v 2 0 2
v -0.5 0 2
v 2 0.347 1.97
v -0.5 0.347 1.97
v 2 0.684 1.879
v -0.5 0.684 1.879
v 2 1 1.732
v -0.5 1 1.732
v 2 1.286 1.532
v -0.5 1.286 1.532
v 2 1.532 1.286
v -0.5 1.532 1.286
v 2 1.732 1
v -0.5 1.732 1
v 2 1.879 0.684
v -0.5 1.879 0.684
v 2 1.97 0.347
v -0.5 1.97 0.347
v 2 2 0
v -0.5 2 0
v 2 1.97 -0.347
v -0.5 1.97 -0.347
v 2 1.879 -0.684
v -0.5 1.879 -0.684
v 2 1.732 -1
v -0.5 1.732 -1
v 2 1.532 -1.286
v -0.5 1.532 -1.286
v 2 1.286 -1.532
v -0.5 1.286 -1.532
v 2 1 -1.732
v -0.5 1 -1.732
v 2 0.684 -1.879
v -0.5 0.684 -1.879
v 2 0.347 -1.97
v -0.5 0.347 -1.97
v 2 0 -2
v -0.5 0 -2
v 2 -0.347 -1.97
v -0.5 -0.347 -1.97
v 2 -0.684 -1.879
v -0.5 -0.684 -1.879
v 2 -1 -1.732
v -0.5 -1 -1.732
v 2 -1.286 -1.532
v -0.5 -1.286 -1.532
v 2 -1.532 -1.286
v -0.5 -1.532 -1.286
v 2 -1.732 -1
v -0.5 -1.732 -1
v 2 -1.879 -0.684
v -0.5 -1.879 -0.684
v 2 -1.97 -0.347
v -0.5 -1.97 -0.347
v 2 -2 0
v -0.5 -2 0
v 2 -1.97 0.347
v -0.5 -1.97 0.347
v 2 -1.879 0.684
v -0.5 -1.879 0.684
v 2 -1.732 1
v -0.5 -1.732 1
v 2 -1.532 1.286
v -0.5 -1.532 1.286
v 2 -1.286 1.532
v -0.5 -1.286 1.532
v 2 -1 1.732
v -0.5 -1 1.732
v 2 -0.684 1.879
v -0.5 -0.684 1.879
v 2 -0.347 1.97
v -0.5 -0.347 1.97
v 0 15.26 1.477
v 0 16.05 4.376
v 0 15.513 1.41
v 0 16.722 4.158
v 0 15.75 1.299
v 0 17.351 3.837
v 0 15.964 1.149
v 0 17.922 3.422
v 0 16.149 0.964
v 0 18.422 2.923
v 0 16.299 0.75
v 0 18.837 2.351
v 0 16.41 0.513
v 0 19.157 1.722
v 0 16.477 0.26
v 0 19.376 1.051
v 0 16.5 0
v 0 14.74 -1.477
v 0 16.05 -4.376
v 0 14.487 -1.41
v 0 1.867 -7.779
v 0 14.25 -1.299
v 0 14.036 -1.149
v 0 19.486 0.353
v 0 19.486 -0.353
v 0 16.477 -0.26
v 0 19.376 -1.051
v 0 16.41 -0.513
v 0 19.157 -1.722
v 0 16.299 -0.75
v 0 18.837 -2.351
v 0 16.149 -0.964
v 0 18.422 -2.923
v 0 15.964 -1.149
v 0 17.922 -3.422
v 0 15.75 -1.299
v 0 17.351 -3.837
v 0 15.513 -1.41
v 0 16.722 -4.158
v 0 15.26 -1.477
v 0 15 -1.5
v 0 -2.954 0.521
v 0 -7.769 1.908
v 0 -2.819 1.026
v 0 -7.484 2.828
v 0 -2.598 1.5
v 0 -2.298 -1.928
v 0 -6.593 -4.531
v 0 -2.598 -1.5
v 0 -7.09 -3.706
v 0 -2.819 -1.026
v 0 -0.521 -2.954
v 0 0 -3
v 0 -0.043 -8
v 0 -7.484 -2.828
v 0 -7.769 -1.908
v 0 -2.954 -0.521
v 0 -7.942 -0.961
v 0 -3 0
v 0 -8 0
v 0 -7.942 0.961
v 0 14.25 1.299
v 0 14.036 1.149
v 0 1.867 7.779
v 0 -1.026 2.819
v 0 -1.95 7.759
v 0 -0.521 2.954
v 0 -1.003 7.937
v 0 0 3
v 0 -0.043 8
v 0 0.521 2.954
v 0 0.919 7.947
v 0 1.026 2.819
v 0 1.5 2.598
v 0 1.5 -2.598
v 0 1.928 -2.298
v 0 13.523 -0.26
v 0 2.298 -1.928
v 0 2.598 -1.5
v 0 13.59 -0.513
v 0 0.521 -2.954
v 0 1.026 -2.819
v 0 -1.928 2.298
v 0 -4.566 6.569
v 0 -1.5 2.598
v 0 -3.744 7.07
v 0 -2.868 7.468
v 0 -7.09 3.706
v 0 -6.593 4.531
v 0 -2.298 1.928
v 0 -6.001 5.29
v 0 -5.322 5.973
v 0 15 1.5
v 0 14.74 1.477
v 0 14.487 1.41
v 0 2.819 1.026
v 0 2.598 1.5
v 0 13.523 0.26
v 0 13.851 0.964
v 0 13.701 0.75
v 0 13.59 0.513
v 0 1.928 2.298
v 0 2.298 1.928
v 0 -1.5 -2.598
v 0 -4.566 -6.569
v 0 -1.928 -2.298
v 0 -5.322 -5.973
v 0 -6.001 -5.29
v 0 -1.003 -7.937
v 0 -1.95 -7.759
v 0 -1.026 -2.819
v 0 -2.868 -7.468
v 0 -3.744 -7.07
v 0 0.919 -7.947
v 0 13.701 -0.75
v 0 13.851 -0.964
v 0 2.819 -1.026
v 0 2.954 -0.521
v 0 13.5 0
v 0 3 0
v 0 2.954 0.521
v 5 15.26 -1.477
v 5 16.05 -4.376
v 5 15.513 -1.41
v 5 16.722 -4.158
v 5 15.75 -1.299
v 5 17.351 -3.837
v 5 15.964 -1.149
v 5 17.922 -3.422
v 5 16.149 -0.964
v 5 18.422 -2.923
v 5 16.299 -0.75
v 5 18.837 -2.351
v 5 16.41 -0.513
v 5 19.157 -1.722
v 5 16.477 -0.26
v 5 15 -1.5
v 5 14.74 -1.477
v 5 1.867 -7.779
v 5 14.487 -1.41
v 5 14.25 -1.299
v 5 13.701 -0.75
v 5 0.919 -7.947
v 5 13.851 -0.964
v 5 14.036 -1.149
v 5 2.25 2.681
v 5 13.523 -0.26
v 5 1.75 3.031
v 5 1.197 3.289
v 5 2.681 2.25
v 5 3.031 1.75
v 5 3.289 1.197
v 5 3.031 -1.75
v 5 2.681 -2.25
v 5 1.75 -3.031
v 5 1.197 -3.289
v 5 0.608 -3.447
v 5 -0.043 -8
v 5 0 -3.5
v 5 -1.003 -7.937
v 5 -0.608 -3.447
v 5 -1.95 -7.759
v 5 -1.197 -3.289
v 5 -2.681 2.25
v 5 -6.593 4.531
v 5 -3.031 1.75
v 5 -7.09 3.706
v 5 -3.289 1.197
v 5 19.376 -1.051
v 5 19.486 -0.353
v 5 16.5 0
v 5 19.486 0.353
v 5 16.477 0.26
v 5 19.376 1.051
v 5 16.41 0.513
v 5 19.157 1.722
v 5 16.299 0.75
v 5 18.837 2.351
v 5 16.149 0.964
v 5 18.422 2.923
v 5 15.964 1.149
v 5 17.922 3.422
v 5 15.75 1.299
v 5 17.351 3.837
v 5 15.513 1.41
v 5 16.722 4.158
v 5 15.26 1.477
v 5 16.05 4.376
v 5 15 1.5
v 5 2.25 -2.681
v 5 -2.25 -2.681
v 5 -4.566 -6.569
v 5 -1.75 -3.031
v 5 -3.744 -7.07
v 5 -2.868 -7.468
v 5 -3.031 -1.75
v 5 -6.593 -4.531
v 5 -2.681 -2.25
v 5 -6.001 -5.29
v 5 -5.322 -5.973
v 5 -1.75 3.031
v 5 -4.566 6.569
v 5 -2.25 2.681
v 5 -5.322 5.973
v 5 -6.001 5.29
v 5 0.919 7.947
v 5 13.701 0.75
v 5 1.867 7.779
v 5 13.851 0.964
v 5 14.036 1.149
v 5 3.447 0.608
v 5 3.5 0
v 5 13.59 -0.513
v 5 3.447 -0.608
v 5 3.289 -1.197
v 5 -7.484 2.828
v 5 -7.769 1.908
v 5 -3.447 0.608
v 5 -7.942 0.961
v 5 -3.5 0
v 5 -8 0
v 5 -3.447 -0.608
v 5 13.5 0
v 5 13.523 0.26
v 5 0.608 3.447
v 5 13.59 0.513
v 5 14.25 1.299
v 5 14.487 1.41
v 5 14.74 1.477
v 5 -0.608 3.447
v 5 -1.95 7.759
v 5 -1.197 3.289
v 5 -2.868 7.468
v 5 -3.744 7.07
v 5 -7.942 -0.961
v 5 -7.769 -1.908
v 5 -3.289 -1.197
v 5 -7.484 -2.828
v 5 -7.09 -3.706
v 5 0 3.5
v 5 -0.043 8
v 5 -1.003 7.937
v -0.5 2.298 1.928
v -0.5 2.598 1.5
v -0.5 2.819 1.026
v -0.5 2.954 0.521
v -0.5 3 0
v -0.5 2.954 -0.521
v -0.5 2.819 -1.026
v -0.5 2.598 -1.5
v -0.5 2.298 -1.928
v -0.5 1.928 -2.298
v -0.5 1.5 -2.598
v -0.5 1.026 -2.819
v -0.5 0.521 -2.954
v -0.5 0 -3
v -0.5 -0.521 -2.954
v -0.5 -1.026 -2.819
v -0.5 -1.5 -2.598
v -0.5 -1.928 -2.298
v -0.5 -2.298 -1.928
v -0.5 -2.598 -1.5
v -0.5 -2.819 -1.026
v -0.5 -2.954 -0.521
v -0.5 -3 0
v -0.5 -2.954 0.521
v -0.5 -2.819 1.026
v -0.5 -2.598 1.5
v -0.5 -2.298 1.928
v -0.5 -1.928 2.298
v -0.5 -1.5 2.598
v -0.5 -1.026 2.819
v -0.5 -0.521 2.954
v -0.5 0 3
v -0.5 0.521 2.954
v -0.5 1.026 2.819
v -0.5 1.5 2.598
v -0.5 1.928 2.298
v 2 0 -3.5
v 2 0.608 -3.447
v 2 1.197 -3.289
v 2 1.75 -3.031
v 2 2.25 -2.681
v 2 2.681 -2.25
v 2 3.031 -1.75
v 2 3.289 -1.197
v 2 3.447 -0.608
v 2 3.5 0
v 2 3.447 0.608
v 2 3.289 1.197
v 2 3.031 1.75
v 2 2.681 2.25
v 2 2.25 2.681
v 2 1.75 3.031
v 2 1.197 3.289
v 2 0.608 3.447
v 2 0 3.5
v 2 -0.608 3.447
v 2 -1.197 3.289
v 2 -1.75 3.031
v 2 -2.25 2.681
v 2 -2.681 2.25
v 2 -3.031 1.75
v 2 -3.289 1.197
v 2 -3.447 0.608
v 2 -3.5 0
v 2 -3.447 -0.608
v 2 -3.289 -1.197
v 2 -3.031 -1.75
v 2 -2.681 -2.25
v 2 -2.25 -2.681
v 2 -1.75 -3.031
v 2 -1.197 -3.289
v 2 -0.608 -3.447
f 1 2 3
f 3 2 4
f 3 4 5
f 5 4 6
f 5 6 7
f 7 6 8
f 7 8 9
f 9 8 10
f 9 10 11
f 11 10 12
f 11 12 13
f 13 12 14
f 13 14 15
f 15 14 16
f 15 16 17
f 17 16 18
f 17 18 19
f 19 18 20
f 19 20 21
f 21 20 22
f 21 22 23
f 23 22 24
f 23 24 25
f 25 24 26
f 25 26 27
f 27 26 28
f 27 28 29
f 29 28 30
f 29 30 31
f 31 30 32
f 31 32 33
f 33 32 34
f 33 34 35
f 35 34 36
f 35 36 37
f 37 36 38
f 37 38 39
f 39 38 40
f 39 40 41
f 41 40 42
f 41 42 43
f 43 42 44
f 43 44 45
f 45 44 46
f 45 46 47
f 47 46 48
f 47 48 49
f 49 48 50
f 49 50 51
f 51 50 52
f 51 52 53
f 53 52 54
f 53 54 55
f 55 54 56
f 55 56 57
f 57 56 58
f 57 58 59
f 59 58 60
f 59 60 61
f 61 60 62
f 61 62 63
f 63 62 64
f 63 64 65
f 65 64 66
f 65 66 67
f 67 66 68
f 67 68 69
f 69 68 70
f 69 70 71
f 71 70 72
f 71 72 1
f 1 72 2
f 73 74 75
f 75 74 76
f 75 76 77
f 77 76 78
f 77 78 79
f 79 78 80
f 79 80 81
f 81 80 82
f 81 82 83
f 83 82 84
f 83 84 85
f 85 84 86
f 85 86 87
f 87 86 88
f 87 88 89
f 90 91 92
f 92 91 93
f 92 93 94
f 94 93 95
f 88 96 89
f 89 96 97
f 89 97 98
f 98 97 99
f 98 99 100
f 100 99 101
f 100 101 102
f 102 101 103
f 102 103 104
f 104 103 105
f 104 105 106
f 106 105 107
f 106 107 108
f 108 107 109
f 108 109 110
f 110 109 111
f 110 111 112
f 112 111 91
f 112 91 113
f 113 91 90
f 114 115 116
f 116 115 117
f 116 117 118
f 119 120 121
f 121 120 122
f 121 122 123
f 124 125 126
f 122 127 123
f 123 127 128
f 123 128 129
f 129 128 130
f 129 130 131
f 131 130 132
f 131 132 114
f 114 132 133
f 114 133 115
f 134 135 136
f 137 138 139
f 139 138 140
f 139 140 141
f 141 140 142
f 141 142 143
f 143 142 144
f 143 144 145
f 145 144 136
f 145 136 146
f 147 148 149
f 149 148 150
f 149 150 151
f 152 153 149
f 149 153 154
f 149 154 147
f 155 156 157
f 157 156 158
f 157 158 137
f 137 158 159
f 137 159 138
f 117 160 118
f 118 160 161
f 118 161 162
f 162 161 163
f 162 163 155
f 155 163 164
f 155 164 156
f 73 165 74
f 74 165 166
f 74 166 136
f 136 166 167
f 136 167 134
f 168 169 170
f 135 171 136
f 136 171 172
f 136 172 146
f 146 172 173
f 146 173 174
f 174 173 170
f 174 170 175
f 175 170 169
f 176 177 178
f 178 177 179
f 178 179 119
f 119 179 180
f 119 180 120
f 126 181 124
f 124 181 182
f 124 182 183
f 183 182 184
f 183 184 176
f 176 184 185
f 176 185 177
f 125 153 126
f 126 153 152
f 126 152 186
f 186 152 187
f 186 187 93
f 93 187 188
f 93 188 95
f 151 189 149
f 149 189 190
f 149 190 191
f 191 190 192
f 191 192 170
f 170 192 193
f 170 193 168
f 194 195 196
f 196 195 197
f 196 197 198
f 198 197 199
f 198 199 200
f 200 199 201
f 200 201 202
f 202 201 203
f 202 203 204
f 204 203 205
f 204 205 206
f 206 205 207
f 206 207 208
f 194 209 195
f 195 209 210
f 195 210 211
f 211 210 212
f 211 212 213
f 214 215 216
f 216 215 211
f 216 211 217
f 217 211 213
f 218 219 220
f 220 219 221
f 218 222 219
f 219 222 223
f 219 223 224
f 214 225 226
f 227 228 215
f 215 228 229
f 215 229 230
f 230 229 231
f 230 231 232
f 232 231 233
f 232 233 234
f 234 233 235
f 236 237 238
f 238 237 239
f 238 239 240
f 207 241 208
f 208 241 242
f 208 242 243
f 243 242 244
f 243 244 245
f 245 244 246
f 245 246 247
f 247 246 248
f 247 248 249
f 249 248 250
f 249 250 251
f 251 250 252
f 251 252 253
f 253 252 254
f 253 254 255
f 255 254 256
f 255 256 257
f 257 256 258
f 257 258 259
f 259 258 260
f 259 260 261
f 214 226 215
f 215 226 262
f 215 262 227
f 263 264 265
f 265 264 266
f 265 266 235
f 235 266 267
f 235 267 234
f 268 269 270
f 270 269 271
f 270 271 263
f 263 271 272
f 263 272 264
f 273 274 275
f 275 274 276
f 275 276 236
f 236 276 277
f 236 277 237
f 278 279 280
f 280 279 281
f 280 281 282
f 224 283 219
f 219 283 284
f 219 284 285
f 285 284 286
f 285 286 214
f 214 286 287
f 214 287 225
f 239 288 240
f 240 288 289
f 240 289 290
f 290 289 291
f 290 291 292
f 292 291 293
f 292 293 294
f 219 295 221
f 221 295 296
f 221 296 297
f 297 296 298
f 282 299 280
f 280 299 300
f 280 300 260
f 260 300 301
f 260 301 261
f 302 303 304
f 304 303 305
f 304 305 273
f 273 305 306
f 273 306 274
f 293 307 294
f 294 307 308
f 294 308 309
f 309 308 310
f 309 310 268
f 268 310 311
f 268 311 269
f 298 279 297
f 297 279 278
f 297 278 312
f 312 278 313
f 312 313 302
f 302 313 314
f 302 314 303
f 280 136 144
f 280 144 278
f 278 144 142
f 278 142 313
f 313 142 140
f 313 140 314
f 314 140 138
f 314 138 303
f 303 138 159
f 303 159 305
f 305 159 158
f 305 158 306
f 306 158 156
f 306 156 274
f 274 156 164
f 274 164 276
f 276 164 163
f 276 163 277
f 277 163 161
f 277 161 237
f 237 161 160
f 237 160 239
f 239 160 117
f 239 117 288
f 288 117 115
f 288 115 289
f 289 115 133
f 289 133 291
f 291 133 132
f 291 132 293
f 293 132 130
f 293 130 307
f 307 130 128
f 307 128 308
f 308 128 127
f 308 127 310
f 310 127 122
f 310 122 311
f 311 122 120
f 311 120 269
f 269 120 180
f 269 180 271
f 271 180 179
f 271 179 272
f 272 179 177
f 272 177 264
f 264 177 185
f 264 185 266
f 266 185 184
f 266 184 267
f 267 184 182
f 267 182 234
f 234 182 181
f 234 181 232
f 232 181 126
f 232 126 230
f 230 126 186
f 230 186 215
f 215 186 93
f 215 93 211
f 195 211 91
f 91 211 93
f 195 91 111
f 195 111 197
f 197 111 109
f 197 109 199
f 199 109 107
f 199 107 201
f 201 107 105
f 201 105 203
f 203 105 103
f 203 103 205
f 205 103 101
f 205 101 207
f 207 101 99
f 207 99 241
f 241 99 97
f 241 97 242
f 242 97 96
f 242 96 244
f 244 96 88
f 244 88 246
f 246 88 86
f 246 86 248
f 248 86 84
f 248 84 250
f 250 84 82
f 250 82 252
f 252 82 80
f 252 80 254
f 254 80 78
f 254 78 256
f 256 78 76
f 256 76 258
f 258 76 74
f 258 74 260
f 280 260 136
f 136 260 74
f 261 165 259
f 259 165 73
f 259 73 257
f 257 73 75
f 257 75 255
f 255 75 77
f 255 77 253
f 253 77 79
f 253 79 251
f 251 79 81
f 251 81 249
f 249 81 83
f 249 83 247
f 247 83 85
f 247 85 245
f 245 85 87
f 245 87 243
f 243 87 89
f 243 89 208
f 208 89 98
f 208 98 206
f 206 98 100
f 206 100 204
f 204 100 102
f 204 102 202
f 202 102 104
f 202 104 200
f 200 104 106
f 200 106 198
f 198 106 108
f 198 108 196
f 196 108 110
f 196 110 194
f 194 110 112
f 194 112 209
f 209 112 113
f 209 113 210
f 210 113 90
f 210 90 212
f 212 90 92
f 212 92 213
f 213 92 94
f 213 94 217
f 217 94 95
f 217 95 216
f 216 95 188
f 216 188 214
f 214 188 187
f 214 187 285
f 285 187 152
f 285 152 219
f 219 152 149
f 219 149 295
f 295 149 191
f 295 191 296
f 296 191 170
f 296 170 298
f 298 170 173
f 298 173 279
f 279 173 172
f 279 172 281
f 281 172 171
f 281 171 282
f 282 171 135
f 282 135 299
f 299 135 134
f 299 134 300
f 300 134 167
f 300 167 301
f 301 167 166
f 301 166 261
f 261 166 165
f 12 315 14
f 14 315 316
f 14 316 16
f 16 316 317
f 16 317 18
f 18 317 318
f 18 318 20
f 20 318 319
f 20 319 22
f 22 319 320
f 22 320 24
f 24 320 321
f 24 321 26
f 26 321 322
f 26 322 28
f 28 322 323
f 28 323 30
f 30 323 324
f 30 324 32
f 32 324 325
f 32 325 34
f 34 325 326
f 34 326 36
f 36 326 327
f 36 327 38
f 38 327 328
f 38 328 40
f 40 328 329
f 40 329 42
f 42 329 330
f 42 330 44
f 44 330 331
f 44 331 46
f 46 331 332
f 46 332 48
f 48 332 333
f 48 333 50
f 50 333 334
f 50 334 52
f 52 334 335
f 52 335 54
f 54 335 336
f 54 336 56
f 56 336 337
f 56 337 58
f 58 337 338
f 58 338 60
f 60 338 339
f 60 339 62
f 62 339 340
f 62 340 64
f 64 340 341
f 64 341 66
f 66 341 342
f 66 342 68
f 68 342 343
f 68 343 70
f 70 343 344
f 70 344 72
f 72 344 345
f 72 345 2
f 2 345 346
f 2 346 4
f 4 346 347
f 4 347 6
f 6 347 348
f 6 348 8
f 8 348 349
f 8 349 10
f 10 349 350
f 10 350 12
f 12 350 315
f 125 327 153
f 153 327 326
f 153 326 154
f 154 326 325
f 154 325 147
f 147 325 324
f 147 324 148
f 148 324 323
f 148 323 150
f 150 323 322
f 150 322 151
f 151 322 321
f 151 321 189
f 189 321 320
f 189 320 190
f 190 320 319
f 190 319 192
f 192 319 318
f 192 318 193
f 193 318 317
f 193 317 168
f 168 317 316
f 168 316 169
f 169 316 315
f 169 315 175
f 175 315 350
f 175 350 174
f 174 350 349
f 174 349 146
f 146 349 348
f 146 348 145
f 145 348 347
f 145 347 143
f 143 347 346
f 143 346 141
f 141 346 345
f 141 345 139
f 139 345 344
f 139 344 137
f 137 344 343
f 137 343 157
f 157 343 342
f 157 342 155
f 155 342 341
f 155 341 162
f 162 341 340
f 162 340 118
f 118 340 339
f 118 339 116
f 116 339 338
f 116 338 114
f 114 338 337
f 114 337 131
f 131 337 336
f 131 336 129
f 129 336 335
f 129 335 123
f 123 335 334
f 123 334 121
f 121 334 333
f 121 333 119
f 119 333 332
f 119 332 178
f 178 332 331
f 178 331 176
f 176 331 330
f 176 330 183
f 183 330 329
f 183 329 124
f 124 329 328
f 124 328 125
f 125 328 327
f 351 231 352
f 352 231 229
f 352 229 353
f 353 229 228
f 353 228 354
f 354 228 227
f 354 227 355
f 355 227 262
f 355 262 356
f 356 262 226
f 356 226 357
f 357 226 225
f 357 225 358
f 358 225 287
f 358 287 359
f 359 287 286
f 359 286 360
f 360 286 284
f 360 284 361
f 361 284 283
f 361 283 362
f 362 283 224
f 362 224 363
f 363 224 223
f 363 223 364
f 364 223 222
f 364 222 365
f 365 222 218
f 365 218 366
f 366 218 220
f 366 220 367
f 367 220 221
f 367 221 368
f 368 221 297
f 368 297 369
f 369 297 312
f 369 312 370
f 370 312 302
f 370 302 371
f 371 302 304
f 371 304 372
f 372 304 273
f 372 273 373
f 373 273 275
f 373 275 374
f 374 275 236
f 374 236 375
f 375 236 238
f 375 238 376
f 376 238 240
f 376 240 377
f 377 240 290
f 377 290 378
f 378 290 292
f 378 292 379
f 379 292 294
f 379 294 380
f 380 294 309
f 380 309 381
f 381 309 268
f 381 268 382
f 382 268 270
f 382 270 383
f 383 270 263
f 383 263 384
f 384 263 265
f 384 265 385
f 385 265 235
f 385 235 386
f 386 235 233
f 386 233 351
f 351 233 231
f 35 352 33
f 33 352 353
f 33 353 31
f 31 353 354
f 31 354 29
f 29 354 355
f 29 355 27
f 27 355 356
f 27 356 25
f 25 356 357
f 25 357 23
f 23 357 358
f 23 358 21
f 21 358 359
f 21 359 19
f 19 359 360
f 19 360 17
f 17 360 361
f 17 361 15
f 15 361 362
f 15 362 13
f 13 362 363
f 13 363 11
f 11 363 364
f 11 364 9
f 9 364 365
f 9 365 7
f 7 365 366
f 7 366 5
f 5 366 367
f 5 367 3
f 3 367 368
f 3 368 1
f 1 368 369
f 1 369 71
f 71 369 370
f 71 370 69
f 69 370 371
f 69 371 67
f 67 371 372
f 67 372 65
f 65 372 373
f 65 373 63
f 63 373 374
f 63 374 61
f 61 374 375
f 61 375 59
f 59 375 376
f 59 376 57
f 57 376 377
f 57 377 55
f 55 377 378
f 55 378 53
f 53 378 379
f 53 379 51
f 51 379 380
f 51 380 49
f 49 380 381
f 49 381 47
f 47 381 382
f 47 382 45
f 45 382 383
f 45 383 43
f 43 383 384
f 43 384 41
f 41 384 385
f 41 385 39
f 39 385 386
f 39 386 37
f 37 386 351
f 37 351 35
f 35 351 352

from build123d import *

# Parameters (mm, degrees)
SKETCH_1_R          = 2
SKETCH_1_R_2        = 1.5
EXTRUDE_1_DEPTH     = 5
SKETCH_2_R          = 3
SKETCH_2_R_2        = 2
EXTRUDE_2_DEPTH     = 0.5
SKETCH_3_R          = 3.5
SKETCH_3_R_2        = 2
CUT_EXTRUDE_1_DEPTH = 3


with BuildPart() as part:
    # 草图1 → 凸台-拉伸1 (new body)
    with BuildSketch(Plane(origin=(0, 0, 0), x_dir=(0, 0, -1), z_dir=(1, 0, 0))):
        with BuildLine():
            Line((-7.779174478, 1.866666667), (-4.375785644, 16.05))
            ThreePointArc((-4.375785644, 16.05), (0, 19.5), (4.375785644, 16.05))
            Line((4.375785644, 16.05), (7.779174478, 1.866666667))
            ThreePointArc((7.779174478, 1.866666667), (0, -8), (-7.779174478, 1.866666667))
        make_face()
        Circle(SKETCH_1_R, mode=Mode.SUBTRACT)
        with Locations((0, 15)):
            Circle(SKETCH_1_R_2, mode=Mode.SUBTRACT)
    extrude(amount=EXTRUDE_1_DEPTH)

    # 草图2 → 凸台-拉伸2 (add)
    with BuildSketch(Plane.ZY):
        Circle(SKETCH_2_R)
        Circle(SKETCH_2_R_2, mode=Mode.SUBTRACT)
    extrude(amount=EXTRUDE_2_DEPTH)

    # 草图3 → 切除-拉伸1 (cut)
    with BuildSketch(Plane(origin=(5, 0, 0), x_dir=(0, 0, -1), z_dir=(1, 0, 0))):
        Circle(SKETCH_3_R)
        Circle(SKETCH_3_R_2, mode=Mode.SUBTRACT)
    extrude(amount=-CUT_EXTRUDE_1_DEPTH, mode=Mode.SUBTRACT)


solid = part.part
